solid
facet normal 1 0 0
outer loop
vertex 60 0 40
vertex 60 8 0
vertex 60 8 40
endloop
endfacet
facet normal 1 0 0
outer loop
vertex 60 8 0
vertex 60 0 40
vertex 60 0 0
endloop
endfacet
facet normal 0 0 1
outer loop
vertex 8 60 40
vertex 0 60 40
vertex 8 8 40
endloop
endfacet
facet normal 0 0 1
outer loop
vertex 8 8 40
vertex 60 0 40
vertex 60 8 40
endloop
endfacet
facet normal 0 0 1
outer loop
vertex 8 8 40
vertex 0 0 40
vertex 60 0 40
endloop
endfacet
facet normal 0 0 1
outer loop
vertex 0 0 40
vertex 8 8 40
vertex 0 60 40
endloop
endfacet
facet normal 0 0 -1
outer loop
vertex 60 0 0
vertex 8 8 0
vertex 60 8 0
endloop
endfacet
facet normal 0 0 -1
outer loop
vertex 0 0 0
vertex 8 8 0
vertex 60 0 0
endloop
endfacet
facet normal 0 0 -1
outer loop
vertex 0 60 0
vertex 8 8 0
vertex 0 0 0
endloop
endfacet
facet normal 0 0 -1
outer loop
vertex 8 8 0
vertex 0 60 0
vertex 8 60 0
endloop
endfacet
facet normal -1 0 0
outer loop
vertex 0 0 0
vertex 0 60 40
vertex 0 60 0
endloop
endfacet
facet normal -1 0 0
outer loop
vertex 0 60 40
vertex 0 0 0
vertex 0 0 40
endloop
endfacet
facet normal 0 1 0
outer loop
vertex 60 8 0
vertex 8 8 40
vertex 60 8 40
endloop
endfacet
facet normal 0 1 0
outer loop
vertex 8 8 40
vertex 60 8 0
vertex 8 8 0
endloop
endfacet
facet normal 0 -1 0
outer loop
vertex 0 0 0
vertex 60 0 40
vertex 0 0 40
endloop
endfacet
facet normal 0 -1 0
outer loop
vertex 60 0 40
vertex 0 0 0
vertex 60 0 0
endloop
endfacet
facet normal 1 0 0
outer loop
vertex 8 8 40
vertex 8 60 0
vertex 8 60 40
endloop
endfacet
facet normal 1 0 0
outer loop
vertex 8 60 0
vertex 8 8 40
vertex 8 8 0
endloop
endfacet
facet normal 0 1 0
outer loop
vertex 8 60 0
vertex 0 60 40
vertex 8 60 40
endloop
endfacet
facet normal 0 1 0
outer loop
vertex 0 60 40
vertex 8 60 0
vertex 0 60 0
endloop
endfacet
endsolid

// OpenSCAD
// Battery corner spacer — L-blocks that locate the packs in the foam cradle
// so the straps do restraint and the foam does cushioning. Print 4 per
// battery (8 total). ASA, 4 perimeters, 40% infill.
//
// LOCATE, DON'T CONTAIN: printed plastic positions the battery; the straps
// hold it. Never print a battery enclosure — prismatic cells need rigid
// compression and printed plastic creeps under load and softens in car heat.

leg = 60;   // leg length along each battery face
h   = 40;   // block height
t   = 8;    // wall thickness

cube([leg, t, h]);
cube([t, leg, h]);
